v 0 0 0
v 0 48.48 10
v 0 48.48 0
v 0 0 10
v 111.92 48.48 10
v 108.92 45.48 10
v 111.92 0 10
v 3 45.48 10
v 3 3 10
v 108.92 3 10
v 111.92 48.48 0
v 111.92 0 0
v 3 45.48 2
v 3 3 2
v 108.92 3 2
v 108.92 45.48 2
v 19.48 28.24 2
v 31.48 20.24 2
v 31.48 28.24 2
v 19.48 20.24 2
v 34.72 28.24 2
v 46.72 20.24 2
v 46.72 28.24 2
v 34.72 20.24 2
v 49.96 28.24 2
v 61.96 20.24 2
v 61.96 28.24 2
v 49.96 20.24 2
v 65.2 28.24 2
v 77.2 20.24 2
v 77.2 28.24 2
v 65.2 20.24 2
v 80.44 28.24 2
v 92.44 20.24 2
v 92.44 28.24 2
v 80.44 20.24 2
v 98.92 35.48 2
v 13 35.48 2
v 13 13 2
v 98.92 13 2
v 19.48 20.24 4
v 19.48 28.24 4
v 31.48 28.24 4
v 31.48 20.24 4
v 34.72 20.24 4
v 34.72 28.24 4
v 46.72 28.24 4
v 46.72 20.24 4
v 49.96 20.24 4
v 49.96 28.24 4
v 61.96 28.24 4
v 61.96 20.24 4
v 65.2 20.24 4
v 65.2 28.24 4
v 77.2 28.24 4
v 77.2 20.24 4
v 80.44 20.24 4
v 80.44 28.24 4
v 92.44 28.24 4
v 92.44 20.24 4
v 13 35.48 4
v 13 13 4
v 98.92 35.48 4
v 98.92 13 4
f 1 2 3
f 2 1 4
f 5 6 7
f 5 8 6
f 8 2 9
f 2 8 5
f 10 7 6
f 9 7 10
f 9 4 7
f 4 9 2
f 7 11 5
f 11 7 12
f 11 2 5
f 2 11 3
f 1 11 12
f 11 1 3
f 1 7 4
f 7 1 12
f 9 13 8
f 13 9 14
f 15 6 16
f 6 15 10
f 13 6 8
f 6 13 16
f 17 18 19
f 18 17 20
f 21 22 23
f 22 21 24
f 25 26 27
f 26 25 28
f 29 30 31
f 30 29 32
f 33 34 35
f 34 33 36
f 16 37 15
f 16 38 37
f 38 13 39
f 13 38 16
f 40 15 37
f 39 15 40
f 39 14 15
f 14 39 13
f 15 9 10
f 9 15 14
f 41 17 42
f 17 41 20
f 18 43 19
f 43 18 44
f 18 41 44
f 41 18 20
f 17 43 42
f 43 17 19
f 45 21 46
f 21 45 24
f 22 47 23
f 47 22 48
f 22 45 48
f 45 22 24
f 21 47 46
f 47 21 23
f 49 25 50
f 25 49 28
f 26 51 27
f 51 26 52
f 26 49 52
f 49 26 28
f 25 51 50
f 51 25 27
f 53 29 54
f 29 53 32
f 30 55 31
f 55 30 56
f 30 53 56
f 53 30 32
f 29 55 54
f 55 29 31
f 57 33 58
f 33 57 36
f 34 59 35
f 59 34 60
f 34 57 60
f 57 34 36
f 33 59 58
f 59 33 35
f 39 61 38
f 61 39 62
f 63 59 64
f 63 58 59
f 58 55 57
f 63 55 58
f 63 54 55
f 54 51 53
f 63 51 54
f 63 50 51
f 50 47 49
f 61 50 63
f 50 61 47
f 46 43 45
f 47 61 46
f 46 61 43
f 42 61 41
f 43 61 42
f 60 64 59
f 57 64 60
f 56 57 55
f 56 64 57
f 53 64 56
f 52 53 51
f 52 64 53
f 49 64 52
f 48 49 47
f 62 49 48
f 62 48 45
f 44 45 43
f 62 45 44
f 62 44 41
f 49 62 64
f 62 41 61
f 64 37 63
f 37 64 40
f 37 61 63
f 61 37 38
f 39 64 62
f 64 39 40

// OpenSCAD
//Taken from Python key label script...
BUTTON_COUNT_X=5;
BUTTON_COUNT_Y=8;

BUTTON_WIDTH=120;
BUTTON_HEIGHT=80;
BUTTON_GAP_HORZ=32.4;
BUTTON_GAP_VERT=72.4;
BUTTON_BORDER_HORZ=20;
BUTTON_BORDER_VERT=20;

//Added for test
BUTTON_DEPTH=20;
KEYPAD_BORDER_HORZ=BUTTON_GAP_HORZ;
KEYPAD_WIDTH=BUTTON_COUNT_X*(BUTTON_WIDTH+BUTTON_GAP_HORZ)+BUTTON_GAP_HORZ+KEYPAD_BORDER_HORZ*2;
KEYPAD_HEIGHT=BUTTON_HEIGHT+2*BUTTON_GAP_VERT;

//Mold box
MOLD_GAP_HORZ=100;
MOLD_GAP_VERT=100;
MOLD_FLOOR_THICKNESS=20;
MOLD_WALL_HEIGHT=80;
MOLD_WALL_THICKNESS=30;

module keypad_row()
{
  difference()
  {
    //keypad layer
    cube([KEYPAD_WIDTH,KEYPAD_HEIGHT,BUTTON_DEPTH]);

    //key holes
    for (i=[0:BUTTON_COUNT_X-1])
    {
      translate([BUTTON_GAP_HORZ+i*(BUTTON_WIDTH+BUTTON_GAP_HORZ)+KEYPAD_BORDER_HORZ,BUTTON_GAP_VERT,-1])
      cube([BUTTON_WIDTH,BUTTON_HEIGHT,BUTTON_DEPTH+2]);
    }
  }
}

module mold()
{
  difference()
  {
    //outside block
    cube([KEYPAD_WIDTH+MOLD_GAP_HORZ*2+MOLD_WALL_THICKNESS*2,
    KEYPAD_HEIGHT+MOLD_GAP_VERT*2+MOLD_WALL_THICKNESS*2,
    MOLD_FLOOR_THICKNESS+MOLD_WALL_HEIGHT]);
    
    //hollow out inside
    translate([MOLD_WALL_THICKNESS,MOLD_WALL_THICKNESS,
      MOLD_FLOOR_THICKNESS])
    cube([KEYPAD_WIDTH+MOLD_GAP_HORZ*2,
    KEYPAD_HEIGHT+MOLD_GAP_VERT*2,
    MOLD_WALL_HEIGHT+1]);
  }
}


scale([0.1,0.1,0.1])
union()
{
  mold();
  translate([MOLD_GAP_HORZ+MOLD_WALL_THICKNESS,MOLD_GAP_VERT+MOLD_WALL_THICKNESS,MOLD_FLOOR_THICKNESS])
  keypad_row();
}
